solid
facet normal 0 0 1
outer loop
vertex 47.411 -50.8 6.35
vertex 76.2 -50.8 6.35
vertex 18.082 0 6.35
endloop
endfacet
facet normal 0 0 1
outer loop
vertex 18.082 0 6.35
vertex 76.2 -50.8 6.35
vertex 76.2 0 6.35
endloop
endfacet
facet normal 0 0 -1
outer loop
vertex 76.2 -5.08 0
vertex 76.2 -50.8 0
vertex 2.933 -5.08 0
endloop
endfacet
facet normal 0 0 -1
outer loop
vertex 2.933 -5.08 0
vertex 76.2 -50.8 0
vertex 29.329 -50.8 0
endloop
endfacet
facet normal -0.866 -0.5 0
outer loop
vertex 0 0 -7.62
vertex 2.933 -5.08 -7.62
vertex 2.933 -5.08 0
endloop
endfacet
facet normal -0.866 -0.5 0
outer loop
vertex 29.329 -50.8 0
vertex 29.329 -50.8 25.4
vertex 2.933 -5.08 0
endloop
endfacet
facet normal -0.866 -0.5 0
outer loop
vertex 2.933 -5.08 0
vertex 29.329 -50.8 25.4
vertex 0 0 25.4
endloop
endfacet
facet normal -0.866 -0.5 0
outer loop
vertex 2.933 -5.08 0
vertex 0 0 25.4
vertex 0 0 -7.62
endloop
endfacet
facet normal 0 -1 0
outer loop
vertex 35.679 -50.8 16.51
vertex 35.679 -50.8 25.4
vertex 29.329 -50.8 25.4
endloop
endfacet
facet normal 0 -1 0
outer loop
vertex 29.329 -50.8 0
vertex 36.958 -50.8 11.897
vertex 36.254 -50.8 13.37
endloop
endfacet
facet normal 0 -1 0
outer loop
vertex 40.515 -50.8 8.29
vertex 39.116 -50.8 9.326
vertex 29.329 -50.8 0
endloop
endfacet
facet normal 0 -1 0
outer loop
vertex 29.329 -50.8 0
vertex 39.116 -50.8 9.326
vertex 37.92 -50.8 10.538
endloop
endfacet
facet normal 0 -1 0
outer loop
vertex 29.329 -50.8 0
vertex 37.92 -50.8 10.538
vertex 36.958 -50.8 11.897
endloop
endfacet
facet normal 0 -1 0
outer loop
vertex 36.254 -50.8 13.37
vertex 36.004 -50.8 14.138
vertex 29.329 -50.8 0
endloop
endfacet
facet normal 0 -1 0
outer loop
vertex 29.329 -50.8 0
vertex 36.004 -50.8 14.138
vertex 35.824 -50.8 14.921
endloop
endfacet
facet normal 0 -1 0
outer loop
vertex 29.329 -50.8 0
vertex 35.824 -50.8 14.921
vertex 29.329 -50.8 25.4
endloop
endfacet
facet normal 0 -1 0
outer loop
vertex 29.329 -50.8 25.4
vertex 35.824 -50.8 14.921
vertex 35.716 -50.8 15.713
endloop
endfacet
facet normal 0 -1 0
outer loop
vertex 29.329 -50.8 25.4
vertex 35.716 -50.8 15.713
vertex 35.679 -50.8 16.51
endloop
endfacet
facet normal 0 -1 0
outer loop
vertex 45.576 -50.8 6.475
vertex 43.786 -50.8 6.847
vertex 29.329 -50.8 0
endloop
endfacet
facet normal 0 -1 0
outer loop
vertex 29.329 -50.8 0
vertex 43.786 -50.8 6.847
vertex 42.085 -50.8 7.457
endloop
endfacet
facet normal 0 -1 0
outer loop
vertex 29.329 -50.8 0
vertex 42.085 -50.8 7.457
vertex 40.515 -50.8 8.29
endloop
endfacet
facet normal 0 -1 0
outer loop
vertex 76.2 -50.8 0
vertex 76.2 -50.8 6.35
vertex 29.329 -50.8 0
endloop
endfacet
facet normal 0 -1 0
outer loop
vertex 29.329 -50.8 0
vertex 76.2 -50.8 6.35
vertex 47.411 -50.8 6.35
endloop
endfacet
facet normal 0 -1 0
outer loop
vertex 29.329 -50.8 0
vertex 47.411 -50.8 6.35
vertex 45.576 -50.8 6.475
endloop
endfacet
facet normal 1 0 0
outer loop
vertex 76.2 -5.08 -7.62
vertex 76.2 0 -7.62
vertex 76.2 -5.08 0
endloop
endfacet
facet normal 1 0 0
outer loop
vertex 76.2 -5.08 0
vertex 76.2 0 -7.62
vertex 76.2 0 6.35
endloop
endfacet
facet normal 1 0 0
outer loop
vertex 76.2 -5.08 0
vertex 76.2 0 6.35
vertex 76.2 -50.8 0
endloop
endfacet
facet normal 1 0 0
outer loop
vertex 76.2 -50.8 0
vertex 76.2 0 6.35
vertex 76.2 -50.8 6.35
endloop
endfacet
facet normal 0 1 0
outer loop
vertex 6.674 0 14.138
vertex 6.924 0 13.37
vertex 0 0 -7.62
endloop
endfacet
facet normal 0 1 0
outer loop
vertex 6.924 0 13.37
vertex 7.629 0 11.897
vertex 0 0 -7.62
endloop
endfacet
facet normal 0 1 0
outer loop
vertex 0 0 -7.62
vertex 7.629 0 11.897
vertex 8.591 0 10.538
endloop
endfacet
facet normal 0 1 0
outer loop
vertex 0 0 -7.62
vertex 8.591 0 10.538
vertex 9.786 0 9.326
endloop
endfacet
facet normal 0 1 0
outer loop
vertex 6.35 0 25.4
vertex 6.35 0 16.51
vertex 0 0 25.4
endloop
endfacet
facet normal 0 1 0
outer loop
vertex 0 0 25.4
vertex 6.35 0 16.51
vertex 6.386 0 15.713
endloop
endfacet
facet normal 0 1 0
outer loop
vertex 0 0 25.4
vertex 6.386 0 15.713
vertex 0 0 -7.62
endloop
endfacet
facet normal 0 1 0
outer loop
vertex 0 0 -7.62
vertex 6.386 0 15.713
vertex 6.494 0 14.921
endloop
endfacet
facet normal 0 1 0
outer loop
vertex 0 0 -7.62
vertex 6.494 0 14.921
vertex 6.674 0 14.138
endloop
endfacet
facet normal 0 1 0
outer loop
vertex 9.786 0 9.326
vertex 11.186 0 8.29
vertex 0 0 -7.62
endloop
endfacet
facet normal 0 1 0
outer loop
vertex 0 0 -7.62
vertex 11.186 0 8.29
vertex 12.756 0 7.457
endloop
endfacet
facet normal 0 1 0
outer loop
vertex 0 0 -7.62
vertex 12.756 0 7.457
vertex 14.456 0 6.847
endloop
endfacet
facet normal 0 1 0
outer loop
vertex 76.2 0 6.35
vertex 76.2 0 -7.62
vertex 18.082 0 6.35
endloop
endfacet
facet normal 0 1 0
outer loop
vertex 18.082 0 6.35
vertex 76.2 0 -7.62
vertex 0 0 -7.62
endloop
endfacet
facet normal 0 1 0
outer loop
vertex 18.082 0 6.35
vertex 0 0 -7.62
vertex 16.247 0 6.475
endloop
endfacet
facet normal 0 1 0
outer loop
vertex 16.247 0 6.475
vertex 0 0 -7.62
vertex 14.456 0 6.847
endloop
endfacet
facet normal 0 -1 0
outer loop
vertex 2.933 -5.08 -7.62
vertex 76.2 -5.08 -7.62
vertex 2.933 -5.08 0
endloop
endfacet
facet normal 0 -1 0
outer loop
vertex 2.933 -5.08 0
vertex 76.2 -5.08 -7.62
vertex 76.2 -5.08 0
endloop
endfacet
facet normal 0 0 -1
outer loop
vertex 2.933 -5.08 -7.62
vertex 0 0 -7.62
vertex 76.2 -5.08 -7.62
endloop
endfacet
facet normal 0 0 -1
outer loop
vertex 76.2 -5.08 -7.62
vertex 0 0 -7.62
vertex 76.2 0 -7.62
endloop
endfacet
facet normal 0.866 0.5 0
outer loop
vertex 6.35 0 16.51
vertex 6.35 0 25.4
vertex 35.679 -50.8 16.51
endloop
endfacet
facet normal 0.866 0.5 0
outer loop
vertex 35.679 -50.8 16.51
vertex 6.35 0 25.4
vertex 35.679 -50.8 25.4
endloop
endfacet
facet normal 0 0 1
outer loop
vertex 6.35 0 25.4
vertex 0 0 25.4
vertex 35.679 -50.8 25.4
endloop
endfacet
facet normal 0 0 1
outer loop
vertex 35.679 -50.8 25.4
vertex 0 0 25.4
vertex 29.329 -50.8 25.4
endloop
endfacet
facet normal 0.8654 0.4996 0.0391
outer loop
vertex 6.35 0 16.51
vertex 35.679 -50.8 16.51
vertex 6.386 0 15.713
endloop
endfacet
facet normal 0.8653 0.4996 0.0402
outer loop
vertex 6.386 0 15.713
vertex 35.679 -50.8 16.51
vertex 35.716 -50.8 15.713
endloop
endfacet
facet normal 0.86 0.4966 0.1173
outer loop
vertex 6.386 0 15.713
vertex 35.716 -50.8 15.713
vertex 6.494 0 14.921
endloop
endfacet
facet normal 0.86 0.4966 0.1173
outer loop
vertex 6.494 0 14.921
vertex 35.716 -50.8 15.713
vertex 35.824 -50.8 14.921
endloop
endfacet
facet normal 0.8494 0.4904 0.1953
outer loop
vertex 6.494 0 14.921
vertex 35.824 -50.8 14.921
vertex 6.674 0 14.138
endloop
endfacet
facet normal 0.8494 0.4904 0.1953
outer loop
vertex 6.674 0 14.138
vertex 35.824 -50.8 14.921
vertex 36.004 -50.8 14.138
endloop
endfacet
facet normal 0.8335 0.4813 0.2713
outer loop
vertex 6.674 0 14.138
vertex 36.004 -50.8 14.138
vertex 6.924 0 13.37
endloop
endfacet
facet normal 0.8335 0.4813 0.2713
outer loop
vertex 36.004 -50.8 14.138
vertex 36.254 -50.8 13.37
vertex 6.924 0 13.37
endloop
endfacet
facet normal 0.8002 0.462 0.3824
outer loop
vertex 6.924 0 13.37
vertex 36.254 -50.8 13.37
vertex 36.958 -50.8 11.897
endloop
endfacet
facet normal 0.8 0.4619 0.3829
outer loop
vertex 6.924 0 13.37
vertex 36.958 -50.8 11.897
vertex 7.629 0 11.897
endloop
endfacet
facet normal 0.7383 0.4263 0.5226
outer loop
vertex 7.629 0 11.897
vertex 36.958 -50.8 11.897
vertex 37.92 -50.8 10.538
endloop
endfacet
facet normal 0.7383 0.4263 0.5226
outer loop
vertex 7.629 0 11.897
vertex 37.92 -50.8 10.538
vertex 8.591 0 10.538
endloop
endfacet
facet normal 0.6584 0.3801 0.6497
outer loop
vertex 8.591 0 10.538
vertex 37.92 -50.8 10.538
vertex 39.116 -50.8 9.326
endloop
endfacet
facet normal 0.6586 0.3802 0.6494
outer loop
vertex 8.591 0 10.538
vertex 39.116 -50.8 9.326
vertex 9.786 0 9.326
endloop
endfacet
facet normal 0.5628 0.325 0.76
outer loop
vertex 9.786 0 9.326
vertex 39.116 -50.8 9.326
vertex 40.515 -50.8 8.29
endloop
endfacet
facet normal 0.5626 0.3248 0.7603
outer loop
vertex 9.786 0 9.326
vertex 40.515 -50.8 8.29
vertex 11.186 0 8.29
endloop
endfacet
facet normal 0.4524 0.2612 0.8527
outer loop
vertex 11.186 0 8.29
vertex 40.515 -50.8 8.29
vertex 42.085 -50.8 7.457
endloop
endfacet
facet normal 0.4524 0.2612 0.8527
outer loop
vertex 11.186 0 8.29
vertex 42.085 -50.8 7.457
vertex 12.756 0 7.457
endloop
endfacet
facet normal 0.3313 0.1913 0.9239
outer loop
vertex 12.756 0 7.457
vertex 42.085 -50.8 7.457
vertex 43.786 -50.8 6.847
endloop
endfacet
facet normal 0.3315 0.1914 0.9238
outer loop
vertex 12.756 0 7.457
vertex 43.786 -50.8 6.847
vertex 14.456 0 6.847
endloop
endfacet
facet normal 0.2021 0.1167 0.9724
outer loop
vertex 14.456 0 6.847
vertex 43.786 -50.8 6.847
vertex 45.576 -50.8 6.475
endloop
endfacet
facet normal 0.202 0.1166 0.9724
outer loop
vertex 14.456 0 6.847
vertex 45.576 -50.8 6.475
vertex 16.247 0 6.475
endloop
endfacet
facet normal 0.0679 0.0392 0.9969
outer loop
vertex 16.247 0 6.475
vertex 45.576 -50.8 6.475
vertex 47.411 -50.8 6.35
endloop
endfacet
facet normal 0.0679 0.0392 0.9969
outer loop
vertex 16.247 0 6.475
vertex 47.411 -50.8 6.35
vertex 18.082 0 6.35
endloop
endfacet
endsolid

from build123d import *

# Parameters (mm, degrees)
BOSS_EXTRUDE1_DEPTH = 6.35
BOSS_EXTRUDE2_DEPTH = 7.62
BOSS_EXTRUDE3_DEPTH = 19.05
FILLET1_R           = 10.16


with BuildPart() as part:
    # Sketch1 → Boss-Extrude1 (new body)
    with BuildSketch(Plane.XY):
        Polygon((0, 0), (76.2, 0), (76.2, -50.8), (29.329393675, -50.8), align=None)
    extrude(amount=BOSS_EXTRUDE1_DEPTH)

    # Sketch2 → Boss-Extrude2 (add)
    with BuildSketch(Plane.XY):
        Polygon((76.2, 0), (0, 0), (2.932939367, -5.08), (76.2, -5.08), align=None)
    extrude(amount=-BOSS_EXTRUDE2_DEPTH)

    # Sketch3 → Boss-Extrude3 (add)
    with BuildSketch(Plane.XY.offset(6.35)):
        Polygon((29.329393675, -50.8), (35.679393675, -50.8), (6.35, 0), (0, 0), align=None)
    extrude(amount=BOSS_EXTRUDE3_DEPTH)

    # Fillet1
    fillet1_edges = [part.edges().sort_by_distance(p)[0] for p in [
        (21.014696837, -25.4, 6.35),
    ]]
    fillet(fillet1_edges, radius=FILLET1_R)


solid = part.part
